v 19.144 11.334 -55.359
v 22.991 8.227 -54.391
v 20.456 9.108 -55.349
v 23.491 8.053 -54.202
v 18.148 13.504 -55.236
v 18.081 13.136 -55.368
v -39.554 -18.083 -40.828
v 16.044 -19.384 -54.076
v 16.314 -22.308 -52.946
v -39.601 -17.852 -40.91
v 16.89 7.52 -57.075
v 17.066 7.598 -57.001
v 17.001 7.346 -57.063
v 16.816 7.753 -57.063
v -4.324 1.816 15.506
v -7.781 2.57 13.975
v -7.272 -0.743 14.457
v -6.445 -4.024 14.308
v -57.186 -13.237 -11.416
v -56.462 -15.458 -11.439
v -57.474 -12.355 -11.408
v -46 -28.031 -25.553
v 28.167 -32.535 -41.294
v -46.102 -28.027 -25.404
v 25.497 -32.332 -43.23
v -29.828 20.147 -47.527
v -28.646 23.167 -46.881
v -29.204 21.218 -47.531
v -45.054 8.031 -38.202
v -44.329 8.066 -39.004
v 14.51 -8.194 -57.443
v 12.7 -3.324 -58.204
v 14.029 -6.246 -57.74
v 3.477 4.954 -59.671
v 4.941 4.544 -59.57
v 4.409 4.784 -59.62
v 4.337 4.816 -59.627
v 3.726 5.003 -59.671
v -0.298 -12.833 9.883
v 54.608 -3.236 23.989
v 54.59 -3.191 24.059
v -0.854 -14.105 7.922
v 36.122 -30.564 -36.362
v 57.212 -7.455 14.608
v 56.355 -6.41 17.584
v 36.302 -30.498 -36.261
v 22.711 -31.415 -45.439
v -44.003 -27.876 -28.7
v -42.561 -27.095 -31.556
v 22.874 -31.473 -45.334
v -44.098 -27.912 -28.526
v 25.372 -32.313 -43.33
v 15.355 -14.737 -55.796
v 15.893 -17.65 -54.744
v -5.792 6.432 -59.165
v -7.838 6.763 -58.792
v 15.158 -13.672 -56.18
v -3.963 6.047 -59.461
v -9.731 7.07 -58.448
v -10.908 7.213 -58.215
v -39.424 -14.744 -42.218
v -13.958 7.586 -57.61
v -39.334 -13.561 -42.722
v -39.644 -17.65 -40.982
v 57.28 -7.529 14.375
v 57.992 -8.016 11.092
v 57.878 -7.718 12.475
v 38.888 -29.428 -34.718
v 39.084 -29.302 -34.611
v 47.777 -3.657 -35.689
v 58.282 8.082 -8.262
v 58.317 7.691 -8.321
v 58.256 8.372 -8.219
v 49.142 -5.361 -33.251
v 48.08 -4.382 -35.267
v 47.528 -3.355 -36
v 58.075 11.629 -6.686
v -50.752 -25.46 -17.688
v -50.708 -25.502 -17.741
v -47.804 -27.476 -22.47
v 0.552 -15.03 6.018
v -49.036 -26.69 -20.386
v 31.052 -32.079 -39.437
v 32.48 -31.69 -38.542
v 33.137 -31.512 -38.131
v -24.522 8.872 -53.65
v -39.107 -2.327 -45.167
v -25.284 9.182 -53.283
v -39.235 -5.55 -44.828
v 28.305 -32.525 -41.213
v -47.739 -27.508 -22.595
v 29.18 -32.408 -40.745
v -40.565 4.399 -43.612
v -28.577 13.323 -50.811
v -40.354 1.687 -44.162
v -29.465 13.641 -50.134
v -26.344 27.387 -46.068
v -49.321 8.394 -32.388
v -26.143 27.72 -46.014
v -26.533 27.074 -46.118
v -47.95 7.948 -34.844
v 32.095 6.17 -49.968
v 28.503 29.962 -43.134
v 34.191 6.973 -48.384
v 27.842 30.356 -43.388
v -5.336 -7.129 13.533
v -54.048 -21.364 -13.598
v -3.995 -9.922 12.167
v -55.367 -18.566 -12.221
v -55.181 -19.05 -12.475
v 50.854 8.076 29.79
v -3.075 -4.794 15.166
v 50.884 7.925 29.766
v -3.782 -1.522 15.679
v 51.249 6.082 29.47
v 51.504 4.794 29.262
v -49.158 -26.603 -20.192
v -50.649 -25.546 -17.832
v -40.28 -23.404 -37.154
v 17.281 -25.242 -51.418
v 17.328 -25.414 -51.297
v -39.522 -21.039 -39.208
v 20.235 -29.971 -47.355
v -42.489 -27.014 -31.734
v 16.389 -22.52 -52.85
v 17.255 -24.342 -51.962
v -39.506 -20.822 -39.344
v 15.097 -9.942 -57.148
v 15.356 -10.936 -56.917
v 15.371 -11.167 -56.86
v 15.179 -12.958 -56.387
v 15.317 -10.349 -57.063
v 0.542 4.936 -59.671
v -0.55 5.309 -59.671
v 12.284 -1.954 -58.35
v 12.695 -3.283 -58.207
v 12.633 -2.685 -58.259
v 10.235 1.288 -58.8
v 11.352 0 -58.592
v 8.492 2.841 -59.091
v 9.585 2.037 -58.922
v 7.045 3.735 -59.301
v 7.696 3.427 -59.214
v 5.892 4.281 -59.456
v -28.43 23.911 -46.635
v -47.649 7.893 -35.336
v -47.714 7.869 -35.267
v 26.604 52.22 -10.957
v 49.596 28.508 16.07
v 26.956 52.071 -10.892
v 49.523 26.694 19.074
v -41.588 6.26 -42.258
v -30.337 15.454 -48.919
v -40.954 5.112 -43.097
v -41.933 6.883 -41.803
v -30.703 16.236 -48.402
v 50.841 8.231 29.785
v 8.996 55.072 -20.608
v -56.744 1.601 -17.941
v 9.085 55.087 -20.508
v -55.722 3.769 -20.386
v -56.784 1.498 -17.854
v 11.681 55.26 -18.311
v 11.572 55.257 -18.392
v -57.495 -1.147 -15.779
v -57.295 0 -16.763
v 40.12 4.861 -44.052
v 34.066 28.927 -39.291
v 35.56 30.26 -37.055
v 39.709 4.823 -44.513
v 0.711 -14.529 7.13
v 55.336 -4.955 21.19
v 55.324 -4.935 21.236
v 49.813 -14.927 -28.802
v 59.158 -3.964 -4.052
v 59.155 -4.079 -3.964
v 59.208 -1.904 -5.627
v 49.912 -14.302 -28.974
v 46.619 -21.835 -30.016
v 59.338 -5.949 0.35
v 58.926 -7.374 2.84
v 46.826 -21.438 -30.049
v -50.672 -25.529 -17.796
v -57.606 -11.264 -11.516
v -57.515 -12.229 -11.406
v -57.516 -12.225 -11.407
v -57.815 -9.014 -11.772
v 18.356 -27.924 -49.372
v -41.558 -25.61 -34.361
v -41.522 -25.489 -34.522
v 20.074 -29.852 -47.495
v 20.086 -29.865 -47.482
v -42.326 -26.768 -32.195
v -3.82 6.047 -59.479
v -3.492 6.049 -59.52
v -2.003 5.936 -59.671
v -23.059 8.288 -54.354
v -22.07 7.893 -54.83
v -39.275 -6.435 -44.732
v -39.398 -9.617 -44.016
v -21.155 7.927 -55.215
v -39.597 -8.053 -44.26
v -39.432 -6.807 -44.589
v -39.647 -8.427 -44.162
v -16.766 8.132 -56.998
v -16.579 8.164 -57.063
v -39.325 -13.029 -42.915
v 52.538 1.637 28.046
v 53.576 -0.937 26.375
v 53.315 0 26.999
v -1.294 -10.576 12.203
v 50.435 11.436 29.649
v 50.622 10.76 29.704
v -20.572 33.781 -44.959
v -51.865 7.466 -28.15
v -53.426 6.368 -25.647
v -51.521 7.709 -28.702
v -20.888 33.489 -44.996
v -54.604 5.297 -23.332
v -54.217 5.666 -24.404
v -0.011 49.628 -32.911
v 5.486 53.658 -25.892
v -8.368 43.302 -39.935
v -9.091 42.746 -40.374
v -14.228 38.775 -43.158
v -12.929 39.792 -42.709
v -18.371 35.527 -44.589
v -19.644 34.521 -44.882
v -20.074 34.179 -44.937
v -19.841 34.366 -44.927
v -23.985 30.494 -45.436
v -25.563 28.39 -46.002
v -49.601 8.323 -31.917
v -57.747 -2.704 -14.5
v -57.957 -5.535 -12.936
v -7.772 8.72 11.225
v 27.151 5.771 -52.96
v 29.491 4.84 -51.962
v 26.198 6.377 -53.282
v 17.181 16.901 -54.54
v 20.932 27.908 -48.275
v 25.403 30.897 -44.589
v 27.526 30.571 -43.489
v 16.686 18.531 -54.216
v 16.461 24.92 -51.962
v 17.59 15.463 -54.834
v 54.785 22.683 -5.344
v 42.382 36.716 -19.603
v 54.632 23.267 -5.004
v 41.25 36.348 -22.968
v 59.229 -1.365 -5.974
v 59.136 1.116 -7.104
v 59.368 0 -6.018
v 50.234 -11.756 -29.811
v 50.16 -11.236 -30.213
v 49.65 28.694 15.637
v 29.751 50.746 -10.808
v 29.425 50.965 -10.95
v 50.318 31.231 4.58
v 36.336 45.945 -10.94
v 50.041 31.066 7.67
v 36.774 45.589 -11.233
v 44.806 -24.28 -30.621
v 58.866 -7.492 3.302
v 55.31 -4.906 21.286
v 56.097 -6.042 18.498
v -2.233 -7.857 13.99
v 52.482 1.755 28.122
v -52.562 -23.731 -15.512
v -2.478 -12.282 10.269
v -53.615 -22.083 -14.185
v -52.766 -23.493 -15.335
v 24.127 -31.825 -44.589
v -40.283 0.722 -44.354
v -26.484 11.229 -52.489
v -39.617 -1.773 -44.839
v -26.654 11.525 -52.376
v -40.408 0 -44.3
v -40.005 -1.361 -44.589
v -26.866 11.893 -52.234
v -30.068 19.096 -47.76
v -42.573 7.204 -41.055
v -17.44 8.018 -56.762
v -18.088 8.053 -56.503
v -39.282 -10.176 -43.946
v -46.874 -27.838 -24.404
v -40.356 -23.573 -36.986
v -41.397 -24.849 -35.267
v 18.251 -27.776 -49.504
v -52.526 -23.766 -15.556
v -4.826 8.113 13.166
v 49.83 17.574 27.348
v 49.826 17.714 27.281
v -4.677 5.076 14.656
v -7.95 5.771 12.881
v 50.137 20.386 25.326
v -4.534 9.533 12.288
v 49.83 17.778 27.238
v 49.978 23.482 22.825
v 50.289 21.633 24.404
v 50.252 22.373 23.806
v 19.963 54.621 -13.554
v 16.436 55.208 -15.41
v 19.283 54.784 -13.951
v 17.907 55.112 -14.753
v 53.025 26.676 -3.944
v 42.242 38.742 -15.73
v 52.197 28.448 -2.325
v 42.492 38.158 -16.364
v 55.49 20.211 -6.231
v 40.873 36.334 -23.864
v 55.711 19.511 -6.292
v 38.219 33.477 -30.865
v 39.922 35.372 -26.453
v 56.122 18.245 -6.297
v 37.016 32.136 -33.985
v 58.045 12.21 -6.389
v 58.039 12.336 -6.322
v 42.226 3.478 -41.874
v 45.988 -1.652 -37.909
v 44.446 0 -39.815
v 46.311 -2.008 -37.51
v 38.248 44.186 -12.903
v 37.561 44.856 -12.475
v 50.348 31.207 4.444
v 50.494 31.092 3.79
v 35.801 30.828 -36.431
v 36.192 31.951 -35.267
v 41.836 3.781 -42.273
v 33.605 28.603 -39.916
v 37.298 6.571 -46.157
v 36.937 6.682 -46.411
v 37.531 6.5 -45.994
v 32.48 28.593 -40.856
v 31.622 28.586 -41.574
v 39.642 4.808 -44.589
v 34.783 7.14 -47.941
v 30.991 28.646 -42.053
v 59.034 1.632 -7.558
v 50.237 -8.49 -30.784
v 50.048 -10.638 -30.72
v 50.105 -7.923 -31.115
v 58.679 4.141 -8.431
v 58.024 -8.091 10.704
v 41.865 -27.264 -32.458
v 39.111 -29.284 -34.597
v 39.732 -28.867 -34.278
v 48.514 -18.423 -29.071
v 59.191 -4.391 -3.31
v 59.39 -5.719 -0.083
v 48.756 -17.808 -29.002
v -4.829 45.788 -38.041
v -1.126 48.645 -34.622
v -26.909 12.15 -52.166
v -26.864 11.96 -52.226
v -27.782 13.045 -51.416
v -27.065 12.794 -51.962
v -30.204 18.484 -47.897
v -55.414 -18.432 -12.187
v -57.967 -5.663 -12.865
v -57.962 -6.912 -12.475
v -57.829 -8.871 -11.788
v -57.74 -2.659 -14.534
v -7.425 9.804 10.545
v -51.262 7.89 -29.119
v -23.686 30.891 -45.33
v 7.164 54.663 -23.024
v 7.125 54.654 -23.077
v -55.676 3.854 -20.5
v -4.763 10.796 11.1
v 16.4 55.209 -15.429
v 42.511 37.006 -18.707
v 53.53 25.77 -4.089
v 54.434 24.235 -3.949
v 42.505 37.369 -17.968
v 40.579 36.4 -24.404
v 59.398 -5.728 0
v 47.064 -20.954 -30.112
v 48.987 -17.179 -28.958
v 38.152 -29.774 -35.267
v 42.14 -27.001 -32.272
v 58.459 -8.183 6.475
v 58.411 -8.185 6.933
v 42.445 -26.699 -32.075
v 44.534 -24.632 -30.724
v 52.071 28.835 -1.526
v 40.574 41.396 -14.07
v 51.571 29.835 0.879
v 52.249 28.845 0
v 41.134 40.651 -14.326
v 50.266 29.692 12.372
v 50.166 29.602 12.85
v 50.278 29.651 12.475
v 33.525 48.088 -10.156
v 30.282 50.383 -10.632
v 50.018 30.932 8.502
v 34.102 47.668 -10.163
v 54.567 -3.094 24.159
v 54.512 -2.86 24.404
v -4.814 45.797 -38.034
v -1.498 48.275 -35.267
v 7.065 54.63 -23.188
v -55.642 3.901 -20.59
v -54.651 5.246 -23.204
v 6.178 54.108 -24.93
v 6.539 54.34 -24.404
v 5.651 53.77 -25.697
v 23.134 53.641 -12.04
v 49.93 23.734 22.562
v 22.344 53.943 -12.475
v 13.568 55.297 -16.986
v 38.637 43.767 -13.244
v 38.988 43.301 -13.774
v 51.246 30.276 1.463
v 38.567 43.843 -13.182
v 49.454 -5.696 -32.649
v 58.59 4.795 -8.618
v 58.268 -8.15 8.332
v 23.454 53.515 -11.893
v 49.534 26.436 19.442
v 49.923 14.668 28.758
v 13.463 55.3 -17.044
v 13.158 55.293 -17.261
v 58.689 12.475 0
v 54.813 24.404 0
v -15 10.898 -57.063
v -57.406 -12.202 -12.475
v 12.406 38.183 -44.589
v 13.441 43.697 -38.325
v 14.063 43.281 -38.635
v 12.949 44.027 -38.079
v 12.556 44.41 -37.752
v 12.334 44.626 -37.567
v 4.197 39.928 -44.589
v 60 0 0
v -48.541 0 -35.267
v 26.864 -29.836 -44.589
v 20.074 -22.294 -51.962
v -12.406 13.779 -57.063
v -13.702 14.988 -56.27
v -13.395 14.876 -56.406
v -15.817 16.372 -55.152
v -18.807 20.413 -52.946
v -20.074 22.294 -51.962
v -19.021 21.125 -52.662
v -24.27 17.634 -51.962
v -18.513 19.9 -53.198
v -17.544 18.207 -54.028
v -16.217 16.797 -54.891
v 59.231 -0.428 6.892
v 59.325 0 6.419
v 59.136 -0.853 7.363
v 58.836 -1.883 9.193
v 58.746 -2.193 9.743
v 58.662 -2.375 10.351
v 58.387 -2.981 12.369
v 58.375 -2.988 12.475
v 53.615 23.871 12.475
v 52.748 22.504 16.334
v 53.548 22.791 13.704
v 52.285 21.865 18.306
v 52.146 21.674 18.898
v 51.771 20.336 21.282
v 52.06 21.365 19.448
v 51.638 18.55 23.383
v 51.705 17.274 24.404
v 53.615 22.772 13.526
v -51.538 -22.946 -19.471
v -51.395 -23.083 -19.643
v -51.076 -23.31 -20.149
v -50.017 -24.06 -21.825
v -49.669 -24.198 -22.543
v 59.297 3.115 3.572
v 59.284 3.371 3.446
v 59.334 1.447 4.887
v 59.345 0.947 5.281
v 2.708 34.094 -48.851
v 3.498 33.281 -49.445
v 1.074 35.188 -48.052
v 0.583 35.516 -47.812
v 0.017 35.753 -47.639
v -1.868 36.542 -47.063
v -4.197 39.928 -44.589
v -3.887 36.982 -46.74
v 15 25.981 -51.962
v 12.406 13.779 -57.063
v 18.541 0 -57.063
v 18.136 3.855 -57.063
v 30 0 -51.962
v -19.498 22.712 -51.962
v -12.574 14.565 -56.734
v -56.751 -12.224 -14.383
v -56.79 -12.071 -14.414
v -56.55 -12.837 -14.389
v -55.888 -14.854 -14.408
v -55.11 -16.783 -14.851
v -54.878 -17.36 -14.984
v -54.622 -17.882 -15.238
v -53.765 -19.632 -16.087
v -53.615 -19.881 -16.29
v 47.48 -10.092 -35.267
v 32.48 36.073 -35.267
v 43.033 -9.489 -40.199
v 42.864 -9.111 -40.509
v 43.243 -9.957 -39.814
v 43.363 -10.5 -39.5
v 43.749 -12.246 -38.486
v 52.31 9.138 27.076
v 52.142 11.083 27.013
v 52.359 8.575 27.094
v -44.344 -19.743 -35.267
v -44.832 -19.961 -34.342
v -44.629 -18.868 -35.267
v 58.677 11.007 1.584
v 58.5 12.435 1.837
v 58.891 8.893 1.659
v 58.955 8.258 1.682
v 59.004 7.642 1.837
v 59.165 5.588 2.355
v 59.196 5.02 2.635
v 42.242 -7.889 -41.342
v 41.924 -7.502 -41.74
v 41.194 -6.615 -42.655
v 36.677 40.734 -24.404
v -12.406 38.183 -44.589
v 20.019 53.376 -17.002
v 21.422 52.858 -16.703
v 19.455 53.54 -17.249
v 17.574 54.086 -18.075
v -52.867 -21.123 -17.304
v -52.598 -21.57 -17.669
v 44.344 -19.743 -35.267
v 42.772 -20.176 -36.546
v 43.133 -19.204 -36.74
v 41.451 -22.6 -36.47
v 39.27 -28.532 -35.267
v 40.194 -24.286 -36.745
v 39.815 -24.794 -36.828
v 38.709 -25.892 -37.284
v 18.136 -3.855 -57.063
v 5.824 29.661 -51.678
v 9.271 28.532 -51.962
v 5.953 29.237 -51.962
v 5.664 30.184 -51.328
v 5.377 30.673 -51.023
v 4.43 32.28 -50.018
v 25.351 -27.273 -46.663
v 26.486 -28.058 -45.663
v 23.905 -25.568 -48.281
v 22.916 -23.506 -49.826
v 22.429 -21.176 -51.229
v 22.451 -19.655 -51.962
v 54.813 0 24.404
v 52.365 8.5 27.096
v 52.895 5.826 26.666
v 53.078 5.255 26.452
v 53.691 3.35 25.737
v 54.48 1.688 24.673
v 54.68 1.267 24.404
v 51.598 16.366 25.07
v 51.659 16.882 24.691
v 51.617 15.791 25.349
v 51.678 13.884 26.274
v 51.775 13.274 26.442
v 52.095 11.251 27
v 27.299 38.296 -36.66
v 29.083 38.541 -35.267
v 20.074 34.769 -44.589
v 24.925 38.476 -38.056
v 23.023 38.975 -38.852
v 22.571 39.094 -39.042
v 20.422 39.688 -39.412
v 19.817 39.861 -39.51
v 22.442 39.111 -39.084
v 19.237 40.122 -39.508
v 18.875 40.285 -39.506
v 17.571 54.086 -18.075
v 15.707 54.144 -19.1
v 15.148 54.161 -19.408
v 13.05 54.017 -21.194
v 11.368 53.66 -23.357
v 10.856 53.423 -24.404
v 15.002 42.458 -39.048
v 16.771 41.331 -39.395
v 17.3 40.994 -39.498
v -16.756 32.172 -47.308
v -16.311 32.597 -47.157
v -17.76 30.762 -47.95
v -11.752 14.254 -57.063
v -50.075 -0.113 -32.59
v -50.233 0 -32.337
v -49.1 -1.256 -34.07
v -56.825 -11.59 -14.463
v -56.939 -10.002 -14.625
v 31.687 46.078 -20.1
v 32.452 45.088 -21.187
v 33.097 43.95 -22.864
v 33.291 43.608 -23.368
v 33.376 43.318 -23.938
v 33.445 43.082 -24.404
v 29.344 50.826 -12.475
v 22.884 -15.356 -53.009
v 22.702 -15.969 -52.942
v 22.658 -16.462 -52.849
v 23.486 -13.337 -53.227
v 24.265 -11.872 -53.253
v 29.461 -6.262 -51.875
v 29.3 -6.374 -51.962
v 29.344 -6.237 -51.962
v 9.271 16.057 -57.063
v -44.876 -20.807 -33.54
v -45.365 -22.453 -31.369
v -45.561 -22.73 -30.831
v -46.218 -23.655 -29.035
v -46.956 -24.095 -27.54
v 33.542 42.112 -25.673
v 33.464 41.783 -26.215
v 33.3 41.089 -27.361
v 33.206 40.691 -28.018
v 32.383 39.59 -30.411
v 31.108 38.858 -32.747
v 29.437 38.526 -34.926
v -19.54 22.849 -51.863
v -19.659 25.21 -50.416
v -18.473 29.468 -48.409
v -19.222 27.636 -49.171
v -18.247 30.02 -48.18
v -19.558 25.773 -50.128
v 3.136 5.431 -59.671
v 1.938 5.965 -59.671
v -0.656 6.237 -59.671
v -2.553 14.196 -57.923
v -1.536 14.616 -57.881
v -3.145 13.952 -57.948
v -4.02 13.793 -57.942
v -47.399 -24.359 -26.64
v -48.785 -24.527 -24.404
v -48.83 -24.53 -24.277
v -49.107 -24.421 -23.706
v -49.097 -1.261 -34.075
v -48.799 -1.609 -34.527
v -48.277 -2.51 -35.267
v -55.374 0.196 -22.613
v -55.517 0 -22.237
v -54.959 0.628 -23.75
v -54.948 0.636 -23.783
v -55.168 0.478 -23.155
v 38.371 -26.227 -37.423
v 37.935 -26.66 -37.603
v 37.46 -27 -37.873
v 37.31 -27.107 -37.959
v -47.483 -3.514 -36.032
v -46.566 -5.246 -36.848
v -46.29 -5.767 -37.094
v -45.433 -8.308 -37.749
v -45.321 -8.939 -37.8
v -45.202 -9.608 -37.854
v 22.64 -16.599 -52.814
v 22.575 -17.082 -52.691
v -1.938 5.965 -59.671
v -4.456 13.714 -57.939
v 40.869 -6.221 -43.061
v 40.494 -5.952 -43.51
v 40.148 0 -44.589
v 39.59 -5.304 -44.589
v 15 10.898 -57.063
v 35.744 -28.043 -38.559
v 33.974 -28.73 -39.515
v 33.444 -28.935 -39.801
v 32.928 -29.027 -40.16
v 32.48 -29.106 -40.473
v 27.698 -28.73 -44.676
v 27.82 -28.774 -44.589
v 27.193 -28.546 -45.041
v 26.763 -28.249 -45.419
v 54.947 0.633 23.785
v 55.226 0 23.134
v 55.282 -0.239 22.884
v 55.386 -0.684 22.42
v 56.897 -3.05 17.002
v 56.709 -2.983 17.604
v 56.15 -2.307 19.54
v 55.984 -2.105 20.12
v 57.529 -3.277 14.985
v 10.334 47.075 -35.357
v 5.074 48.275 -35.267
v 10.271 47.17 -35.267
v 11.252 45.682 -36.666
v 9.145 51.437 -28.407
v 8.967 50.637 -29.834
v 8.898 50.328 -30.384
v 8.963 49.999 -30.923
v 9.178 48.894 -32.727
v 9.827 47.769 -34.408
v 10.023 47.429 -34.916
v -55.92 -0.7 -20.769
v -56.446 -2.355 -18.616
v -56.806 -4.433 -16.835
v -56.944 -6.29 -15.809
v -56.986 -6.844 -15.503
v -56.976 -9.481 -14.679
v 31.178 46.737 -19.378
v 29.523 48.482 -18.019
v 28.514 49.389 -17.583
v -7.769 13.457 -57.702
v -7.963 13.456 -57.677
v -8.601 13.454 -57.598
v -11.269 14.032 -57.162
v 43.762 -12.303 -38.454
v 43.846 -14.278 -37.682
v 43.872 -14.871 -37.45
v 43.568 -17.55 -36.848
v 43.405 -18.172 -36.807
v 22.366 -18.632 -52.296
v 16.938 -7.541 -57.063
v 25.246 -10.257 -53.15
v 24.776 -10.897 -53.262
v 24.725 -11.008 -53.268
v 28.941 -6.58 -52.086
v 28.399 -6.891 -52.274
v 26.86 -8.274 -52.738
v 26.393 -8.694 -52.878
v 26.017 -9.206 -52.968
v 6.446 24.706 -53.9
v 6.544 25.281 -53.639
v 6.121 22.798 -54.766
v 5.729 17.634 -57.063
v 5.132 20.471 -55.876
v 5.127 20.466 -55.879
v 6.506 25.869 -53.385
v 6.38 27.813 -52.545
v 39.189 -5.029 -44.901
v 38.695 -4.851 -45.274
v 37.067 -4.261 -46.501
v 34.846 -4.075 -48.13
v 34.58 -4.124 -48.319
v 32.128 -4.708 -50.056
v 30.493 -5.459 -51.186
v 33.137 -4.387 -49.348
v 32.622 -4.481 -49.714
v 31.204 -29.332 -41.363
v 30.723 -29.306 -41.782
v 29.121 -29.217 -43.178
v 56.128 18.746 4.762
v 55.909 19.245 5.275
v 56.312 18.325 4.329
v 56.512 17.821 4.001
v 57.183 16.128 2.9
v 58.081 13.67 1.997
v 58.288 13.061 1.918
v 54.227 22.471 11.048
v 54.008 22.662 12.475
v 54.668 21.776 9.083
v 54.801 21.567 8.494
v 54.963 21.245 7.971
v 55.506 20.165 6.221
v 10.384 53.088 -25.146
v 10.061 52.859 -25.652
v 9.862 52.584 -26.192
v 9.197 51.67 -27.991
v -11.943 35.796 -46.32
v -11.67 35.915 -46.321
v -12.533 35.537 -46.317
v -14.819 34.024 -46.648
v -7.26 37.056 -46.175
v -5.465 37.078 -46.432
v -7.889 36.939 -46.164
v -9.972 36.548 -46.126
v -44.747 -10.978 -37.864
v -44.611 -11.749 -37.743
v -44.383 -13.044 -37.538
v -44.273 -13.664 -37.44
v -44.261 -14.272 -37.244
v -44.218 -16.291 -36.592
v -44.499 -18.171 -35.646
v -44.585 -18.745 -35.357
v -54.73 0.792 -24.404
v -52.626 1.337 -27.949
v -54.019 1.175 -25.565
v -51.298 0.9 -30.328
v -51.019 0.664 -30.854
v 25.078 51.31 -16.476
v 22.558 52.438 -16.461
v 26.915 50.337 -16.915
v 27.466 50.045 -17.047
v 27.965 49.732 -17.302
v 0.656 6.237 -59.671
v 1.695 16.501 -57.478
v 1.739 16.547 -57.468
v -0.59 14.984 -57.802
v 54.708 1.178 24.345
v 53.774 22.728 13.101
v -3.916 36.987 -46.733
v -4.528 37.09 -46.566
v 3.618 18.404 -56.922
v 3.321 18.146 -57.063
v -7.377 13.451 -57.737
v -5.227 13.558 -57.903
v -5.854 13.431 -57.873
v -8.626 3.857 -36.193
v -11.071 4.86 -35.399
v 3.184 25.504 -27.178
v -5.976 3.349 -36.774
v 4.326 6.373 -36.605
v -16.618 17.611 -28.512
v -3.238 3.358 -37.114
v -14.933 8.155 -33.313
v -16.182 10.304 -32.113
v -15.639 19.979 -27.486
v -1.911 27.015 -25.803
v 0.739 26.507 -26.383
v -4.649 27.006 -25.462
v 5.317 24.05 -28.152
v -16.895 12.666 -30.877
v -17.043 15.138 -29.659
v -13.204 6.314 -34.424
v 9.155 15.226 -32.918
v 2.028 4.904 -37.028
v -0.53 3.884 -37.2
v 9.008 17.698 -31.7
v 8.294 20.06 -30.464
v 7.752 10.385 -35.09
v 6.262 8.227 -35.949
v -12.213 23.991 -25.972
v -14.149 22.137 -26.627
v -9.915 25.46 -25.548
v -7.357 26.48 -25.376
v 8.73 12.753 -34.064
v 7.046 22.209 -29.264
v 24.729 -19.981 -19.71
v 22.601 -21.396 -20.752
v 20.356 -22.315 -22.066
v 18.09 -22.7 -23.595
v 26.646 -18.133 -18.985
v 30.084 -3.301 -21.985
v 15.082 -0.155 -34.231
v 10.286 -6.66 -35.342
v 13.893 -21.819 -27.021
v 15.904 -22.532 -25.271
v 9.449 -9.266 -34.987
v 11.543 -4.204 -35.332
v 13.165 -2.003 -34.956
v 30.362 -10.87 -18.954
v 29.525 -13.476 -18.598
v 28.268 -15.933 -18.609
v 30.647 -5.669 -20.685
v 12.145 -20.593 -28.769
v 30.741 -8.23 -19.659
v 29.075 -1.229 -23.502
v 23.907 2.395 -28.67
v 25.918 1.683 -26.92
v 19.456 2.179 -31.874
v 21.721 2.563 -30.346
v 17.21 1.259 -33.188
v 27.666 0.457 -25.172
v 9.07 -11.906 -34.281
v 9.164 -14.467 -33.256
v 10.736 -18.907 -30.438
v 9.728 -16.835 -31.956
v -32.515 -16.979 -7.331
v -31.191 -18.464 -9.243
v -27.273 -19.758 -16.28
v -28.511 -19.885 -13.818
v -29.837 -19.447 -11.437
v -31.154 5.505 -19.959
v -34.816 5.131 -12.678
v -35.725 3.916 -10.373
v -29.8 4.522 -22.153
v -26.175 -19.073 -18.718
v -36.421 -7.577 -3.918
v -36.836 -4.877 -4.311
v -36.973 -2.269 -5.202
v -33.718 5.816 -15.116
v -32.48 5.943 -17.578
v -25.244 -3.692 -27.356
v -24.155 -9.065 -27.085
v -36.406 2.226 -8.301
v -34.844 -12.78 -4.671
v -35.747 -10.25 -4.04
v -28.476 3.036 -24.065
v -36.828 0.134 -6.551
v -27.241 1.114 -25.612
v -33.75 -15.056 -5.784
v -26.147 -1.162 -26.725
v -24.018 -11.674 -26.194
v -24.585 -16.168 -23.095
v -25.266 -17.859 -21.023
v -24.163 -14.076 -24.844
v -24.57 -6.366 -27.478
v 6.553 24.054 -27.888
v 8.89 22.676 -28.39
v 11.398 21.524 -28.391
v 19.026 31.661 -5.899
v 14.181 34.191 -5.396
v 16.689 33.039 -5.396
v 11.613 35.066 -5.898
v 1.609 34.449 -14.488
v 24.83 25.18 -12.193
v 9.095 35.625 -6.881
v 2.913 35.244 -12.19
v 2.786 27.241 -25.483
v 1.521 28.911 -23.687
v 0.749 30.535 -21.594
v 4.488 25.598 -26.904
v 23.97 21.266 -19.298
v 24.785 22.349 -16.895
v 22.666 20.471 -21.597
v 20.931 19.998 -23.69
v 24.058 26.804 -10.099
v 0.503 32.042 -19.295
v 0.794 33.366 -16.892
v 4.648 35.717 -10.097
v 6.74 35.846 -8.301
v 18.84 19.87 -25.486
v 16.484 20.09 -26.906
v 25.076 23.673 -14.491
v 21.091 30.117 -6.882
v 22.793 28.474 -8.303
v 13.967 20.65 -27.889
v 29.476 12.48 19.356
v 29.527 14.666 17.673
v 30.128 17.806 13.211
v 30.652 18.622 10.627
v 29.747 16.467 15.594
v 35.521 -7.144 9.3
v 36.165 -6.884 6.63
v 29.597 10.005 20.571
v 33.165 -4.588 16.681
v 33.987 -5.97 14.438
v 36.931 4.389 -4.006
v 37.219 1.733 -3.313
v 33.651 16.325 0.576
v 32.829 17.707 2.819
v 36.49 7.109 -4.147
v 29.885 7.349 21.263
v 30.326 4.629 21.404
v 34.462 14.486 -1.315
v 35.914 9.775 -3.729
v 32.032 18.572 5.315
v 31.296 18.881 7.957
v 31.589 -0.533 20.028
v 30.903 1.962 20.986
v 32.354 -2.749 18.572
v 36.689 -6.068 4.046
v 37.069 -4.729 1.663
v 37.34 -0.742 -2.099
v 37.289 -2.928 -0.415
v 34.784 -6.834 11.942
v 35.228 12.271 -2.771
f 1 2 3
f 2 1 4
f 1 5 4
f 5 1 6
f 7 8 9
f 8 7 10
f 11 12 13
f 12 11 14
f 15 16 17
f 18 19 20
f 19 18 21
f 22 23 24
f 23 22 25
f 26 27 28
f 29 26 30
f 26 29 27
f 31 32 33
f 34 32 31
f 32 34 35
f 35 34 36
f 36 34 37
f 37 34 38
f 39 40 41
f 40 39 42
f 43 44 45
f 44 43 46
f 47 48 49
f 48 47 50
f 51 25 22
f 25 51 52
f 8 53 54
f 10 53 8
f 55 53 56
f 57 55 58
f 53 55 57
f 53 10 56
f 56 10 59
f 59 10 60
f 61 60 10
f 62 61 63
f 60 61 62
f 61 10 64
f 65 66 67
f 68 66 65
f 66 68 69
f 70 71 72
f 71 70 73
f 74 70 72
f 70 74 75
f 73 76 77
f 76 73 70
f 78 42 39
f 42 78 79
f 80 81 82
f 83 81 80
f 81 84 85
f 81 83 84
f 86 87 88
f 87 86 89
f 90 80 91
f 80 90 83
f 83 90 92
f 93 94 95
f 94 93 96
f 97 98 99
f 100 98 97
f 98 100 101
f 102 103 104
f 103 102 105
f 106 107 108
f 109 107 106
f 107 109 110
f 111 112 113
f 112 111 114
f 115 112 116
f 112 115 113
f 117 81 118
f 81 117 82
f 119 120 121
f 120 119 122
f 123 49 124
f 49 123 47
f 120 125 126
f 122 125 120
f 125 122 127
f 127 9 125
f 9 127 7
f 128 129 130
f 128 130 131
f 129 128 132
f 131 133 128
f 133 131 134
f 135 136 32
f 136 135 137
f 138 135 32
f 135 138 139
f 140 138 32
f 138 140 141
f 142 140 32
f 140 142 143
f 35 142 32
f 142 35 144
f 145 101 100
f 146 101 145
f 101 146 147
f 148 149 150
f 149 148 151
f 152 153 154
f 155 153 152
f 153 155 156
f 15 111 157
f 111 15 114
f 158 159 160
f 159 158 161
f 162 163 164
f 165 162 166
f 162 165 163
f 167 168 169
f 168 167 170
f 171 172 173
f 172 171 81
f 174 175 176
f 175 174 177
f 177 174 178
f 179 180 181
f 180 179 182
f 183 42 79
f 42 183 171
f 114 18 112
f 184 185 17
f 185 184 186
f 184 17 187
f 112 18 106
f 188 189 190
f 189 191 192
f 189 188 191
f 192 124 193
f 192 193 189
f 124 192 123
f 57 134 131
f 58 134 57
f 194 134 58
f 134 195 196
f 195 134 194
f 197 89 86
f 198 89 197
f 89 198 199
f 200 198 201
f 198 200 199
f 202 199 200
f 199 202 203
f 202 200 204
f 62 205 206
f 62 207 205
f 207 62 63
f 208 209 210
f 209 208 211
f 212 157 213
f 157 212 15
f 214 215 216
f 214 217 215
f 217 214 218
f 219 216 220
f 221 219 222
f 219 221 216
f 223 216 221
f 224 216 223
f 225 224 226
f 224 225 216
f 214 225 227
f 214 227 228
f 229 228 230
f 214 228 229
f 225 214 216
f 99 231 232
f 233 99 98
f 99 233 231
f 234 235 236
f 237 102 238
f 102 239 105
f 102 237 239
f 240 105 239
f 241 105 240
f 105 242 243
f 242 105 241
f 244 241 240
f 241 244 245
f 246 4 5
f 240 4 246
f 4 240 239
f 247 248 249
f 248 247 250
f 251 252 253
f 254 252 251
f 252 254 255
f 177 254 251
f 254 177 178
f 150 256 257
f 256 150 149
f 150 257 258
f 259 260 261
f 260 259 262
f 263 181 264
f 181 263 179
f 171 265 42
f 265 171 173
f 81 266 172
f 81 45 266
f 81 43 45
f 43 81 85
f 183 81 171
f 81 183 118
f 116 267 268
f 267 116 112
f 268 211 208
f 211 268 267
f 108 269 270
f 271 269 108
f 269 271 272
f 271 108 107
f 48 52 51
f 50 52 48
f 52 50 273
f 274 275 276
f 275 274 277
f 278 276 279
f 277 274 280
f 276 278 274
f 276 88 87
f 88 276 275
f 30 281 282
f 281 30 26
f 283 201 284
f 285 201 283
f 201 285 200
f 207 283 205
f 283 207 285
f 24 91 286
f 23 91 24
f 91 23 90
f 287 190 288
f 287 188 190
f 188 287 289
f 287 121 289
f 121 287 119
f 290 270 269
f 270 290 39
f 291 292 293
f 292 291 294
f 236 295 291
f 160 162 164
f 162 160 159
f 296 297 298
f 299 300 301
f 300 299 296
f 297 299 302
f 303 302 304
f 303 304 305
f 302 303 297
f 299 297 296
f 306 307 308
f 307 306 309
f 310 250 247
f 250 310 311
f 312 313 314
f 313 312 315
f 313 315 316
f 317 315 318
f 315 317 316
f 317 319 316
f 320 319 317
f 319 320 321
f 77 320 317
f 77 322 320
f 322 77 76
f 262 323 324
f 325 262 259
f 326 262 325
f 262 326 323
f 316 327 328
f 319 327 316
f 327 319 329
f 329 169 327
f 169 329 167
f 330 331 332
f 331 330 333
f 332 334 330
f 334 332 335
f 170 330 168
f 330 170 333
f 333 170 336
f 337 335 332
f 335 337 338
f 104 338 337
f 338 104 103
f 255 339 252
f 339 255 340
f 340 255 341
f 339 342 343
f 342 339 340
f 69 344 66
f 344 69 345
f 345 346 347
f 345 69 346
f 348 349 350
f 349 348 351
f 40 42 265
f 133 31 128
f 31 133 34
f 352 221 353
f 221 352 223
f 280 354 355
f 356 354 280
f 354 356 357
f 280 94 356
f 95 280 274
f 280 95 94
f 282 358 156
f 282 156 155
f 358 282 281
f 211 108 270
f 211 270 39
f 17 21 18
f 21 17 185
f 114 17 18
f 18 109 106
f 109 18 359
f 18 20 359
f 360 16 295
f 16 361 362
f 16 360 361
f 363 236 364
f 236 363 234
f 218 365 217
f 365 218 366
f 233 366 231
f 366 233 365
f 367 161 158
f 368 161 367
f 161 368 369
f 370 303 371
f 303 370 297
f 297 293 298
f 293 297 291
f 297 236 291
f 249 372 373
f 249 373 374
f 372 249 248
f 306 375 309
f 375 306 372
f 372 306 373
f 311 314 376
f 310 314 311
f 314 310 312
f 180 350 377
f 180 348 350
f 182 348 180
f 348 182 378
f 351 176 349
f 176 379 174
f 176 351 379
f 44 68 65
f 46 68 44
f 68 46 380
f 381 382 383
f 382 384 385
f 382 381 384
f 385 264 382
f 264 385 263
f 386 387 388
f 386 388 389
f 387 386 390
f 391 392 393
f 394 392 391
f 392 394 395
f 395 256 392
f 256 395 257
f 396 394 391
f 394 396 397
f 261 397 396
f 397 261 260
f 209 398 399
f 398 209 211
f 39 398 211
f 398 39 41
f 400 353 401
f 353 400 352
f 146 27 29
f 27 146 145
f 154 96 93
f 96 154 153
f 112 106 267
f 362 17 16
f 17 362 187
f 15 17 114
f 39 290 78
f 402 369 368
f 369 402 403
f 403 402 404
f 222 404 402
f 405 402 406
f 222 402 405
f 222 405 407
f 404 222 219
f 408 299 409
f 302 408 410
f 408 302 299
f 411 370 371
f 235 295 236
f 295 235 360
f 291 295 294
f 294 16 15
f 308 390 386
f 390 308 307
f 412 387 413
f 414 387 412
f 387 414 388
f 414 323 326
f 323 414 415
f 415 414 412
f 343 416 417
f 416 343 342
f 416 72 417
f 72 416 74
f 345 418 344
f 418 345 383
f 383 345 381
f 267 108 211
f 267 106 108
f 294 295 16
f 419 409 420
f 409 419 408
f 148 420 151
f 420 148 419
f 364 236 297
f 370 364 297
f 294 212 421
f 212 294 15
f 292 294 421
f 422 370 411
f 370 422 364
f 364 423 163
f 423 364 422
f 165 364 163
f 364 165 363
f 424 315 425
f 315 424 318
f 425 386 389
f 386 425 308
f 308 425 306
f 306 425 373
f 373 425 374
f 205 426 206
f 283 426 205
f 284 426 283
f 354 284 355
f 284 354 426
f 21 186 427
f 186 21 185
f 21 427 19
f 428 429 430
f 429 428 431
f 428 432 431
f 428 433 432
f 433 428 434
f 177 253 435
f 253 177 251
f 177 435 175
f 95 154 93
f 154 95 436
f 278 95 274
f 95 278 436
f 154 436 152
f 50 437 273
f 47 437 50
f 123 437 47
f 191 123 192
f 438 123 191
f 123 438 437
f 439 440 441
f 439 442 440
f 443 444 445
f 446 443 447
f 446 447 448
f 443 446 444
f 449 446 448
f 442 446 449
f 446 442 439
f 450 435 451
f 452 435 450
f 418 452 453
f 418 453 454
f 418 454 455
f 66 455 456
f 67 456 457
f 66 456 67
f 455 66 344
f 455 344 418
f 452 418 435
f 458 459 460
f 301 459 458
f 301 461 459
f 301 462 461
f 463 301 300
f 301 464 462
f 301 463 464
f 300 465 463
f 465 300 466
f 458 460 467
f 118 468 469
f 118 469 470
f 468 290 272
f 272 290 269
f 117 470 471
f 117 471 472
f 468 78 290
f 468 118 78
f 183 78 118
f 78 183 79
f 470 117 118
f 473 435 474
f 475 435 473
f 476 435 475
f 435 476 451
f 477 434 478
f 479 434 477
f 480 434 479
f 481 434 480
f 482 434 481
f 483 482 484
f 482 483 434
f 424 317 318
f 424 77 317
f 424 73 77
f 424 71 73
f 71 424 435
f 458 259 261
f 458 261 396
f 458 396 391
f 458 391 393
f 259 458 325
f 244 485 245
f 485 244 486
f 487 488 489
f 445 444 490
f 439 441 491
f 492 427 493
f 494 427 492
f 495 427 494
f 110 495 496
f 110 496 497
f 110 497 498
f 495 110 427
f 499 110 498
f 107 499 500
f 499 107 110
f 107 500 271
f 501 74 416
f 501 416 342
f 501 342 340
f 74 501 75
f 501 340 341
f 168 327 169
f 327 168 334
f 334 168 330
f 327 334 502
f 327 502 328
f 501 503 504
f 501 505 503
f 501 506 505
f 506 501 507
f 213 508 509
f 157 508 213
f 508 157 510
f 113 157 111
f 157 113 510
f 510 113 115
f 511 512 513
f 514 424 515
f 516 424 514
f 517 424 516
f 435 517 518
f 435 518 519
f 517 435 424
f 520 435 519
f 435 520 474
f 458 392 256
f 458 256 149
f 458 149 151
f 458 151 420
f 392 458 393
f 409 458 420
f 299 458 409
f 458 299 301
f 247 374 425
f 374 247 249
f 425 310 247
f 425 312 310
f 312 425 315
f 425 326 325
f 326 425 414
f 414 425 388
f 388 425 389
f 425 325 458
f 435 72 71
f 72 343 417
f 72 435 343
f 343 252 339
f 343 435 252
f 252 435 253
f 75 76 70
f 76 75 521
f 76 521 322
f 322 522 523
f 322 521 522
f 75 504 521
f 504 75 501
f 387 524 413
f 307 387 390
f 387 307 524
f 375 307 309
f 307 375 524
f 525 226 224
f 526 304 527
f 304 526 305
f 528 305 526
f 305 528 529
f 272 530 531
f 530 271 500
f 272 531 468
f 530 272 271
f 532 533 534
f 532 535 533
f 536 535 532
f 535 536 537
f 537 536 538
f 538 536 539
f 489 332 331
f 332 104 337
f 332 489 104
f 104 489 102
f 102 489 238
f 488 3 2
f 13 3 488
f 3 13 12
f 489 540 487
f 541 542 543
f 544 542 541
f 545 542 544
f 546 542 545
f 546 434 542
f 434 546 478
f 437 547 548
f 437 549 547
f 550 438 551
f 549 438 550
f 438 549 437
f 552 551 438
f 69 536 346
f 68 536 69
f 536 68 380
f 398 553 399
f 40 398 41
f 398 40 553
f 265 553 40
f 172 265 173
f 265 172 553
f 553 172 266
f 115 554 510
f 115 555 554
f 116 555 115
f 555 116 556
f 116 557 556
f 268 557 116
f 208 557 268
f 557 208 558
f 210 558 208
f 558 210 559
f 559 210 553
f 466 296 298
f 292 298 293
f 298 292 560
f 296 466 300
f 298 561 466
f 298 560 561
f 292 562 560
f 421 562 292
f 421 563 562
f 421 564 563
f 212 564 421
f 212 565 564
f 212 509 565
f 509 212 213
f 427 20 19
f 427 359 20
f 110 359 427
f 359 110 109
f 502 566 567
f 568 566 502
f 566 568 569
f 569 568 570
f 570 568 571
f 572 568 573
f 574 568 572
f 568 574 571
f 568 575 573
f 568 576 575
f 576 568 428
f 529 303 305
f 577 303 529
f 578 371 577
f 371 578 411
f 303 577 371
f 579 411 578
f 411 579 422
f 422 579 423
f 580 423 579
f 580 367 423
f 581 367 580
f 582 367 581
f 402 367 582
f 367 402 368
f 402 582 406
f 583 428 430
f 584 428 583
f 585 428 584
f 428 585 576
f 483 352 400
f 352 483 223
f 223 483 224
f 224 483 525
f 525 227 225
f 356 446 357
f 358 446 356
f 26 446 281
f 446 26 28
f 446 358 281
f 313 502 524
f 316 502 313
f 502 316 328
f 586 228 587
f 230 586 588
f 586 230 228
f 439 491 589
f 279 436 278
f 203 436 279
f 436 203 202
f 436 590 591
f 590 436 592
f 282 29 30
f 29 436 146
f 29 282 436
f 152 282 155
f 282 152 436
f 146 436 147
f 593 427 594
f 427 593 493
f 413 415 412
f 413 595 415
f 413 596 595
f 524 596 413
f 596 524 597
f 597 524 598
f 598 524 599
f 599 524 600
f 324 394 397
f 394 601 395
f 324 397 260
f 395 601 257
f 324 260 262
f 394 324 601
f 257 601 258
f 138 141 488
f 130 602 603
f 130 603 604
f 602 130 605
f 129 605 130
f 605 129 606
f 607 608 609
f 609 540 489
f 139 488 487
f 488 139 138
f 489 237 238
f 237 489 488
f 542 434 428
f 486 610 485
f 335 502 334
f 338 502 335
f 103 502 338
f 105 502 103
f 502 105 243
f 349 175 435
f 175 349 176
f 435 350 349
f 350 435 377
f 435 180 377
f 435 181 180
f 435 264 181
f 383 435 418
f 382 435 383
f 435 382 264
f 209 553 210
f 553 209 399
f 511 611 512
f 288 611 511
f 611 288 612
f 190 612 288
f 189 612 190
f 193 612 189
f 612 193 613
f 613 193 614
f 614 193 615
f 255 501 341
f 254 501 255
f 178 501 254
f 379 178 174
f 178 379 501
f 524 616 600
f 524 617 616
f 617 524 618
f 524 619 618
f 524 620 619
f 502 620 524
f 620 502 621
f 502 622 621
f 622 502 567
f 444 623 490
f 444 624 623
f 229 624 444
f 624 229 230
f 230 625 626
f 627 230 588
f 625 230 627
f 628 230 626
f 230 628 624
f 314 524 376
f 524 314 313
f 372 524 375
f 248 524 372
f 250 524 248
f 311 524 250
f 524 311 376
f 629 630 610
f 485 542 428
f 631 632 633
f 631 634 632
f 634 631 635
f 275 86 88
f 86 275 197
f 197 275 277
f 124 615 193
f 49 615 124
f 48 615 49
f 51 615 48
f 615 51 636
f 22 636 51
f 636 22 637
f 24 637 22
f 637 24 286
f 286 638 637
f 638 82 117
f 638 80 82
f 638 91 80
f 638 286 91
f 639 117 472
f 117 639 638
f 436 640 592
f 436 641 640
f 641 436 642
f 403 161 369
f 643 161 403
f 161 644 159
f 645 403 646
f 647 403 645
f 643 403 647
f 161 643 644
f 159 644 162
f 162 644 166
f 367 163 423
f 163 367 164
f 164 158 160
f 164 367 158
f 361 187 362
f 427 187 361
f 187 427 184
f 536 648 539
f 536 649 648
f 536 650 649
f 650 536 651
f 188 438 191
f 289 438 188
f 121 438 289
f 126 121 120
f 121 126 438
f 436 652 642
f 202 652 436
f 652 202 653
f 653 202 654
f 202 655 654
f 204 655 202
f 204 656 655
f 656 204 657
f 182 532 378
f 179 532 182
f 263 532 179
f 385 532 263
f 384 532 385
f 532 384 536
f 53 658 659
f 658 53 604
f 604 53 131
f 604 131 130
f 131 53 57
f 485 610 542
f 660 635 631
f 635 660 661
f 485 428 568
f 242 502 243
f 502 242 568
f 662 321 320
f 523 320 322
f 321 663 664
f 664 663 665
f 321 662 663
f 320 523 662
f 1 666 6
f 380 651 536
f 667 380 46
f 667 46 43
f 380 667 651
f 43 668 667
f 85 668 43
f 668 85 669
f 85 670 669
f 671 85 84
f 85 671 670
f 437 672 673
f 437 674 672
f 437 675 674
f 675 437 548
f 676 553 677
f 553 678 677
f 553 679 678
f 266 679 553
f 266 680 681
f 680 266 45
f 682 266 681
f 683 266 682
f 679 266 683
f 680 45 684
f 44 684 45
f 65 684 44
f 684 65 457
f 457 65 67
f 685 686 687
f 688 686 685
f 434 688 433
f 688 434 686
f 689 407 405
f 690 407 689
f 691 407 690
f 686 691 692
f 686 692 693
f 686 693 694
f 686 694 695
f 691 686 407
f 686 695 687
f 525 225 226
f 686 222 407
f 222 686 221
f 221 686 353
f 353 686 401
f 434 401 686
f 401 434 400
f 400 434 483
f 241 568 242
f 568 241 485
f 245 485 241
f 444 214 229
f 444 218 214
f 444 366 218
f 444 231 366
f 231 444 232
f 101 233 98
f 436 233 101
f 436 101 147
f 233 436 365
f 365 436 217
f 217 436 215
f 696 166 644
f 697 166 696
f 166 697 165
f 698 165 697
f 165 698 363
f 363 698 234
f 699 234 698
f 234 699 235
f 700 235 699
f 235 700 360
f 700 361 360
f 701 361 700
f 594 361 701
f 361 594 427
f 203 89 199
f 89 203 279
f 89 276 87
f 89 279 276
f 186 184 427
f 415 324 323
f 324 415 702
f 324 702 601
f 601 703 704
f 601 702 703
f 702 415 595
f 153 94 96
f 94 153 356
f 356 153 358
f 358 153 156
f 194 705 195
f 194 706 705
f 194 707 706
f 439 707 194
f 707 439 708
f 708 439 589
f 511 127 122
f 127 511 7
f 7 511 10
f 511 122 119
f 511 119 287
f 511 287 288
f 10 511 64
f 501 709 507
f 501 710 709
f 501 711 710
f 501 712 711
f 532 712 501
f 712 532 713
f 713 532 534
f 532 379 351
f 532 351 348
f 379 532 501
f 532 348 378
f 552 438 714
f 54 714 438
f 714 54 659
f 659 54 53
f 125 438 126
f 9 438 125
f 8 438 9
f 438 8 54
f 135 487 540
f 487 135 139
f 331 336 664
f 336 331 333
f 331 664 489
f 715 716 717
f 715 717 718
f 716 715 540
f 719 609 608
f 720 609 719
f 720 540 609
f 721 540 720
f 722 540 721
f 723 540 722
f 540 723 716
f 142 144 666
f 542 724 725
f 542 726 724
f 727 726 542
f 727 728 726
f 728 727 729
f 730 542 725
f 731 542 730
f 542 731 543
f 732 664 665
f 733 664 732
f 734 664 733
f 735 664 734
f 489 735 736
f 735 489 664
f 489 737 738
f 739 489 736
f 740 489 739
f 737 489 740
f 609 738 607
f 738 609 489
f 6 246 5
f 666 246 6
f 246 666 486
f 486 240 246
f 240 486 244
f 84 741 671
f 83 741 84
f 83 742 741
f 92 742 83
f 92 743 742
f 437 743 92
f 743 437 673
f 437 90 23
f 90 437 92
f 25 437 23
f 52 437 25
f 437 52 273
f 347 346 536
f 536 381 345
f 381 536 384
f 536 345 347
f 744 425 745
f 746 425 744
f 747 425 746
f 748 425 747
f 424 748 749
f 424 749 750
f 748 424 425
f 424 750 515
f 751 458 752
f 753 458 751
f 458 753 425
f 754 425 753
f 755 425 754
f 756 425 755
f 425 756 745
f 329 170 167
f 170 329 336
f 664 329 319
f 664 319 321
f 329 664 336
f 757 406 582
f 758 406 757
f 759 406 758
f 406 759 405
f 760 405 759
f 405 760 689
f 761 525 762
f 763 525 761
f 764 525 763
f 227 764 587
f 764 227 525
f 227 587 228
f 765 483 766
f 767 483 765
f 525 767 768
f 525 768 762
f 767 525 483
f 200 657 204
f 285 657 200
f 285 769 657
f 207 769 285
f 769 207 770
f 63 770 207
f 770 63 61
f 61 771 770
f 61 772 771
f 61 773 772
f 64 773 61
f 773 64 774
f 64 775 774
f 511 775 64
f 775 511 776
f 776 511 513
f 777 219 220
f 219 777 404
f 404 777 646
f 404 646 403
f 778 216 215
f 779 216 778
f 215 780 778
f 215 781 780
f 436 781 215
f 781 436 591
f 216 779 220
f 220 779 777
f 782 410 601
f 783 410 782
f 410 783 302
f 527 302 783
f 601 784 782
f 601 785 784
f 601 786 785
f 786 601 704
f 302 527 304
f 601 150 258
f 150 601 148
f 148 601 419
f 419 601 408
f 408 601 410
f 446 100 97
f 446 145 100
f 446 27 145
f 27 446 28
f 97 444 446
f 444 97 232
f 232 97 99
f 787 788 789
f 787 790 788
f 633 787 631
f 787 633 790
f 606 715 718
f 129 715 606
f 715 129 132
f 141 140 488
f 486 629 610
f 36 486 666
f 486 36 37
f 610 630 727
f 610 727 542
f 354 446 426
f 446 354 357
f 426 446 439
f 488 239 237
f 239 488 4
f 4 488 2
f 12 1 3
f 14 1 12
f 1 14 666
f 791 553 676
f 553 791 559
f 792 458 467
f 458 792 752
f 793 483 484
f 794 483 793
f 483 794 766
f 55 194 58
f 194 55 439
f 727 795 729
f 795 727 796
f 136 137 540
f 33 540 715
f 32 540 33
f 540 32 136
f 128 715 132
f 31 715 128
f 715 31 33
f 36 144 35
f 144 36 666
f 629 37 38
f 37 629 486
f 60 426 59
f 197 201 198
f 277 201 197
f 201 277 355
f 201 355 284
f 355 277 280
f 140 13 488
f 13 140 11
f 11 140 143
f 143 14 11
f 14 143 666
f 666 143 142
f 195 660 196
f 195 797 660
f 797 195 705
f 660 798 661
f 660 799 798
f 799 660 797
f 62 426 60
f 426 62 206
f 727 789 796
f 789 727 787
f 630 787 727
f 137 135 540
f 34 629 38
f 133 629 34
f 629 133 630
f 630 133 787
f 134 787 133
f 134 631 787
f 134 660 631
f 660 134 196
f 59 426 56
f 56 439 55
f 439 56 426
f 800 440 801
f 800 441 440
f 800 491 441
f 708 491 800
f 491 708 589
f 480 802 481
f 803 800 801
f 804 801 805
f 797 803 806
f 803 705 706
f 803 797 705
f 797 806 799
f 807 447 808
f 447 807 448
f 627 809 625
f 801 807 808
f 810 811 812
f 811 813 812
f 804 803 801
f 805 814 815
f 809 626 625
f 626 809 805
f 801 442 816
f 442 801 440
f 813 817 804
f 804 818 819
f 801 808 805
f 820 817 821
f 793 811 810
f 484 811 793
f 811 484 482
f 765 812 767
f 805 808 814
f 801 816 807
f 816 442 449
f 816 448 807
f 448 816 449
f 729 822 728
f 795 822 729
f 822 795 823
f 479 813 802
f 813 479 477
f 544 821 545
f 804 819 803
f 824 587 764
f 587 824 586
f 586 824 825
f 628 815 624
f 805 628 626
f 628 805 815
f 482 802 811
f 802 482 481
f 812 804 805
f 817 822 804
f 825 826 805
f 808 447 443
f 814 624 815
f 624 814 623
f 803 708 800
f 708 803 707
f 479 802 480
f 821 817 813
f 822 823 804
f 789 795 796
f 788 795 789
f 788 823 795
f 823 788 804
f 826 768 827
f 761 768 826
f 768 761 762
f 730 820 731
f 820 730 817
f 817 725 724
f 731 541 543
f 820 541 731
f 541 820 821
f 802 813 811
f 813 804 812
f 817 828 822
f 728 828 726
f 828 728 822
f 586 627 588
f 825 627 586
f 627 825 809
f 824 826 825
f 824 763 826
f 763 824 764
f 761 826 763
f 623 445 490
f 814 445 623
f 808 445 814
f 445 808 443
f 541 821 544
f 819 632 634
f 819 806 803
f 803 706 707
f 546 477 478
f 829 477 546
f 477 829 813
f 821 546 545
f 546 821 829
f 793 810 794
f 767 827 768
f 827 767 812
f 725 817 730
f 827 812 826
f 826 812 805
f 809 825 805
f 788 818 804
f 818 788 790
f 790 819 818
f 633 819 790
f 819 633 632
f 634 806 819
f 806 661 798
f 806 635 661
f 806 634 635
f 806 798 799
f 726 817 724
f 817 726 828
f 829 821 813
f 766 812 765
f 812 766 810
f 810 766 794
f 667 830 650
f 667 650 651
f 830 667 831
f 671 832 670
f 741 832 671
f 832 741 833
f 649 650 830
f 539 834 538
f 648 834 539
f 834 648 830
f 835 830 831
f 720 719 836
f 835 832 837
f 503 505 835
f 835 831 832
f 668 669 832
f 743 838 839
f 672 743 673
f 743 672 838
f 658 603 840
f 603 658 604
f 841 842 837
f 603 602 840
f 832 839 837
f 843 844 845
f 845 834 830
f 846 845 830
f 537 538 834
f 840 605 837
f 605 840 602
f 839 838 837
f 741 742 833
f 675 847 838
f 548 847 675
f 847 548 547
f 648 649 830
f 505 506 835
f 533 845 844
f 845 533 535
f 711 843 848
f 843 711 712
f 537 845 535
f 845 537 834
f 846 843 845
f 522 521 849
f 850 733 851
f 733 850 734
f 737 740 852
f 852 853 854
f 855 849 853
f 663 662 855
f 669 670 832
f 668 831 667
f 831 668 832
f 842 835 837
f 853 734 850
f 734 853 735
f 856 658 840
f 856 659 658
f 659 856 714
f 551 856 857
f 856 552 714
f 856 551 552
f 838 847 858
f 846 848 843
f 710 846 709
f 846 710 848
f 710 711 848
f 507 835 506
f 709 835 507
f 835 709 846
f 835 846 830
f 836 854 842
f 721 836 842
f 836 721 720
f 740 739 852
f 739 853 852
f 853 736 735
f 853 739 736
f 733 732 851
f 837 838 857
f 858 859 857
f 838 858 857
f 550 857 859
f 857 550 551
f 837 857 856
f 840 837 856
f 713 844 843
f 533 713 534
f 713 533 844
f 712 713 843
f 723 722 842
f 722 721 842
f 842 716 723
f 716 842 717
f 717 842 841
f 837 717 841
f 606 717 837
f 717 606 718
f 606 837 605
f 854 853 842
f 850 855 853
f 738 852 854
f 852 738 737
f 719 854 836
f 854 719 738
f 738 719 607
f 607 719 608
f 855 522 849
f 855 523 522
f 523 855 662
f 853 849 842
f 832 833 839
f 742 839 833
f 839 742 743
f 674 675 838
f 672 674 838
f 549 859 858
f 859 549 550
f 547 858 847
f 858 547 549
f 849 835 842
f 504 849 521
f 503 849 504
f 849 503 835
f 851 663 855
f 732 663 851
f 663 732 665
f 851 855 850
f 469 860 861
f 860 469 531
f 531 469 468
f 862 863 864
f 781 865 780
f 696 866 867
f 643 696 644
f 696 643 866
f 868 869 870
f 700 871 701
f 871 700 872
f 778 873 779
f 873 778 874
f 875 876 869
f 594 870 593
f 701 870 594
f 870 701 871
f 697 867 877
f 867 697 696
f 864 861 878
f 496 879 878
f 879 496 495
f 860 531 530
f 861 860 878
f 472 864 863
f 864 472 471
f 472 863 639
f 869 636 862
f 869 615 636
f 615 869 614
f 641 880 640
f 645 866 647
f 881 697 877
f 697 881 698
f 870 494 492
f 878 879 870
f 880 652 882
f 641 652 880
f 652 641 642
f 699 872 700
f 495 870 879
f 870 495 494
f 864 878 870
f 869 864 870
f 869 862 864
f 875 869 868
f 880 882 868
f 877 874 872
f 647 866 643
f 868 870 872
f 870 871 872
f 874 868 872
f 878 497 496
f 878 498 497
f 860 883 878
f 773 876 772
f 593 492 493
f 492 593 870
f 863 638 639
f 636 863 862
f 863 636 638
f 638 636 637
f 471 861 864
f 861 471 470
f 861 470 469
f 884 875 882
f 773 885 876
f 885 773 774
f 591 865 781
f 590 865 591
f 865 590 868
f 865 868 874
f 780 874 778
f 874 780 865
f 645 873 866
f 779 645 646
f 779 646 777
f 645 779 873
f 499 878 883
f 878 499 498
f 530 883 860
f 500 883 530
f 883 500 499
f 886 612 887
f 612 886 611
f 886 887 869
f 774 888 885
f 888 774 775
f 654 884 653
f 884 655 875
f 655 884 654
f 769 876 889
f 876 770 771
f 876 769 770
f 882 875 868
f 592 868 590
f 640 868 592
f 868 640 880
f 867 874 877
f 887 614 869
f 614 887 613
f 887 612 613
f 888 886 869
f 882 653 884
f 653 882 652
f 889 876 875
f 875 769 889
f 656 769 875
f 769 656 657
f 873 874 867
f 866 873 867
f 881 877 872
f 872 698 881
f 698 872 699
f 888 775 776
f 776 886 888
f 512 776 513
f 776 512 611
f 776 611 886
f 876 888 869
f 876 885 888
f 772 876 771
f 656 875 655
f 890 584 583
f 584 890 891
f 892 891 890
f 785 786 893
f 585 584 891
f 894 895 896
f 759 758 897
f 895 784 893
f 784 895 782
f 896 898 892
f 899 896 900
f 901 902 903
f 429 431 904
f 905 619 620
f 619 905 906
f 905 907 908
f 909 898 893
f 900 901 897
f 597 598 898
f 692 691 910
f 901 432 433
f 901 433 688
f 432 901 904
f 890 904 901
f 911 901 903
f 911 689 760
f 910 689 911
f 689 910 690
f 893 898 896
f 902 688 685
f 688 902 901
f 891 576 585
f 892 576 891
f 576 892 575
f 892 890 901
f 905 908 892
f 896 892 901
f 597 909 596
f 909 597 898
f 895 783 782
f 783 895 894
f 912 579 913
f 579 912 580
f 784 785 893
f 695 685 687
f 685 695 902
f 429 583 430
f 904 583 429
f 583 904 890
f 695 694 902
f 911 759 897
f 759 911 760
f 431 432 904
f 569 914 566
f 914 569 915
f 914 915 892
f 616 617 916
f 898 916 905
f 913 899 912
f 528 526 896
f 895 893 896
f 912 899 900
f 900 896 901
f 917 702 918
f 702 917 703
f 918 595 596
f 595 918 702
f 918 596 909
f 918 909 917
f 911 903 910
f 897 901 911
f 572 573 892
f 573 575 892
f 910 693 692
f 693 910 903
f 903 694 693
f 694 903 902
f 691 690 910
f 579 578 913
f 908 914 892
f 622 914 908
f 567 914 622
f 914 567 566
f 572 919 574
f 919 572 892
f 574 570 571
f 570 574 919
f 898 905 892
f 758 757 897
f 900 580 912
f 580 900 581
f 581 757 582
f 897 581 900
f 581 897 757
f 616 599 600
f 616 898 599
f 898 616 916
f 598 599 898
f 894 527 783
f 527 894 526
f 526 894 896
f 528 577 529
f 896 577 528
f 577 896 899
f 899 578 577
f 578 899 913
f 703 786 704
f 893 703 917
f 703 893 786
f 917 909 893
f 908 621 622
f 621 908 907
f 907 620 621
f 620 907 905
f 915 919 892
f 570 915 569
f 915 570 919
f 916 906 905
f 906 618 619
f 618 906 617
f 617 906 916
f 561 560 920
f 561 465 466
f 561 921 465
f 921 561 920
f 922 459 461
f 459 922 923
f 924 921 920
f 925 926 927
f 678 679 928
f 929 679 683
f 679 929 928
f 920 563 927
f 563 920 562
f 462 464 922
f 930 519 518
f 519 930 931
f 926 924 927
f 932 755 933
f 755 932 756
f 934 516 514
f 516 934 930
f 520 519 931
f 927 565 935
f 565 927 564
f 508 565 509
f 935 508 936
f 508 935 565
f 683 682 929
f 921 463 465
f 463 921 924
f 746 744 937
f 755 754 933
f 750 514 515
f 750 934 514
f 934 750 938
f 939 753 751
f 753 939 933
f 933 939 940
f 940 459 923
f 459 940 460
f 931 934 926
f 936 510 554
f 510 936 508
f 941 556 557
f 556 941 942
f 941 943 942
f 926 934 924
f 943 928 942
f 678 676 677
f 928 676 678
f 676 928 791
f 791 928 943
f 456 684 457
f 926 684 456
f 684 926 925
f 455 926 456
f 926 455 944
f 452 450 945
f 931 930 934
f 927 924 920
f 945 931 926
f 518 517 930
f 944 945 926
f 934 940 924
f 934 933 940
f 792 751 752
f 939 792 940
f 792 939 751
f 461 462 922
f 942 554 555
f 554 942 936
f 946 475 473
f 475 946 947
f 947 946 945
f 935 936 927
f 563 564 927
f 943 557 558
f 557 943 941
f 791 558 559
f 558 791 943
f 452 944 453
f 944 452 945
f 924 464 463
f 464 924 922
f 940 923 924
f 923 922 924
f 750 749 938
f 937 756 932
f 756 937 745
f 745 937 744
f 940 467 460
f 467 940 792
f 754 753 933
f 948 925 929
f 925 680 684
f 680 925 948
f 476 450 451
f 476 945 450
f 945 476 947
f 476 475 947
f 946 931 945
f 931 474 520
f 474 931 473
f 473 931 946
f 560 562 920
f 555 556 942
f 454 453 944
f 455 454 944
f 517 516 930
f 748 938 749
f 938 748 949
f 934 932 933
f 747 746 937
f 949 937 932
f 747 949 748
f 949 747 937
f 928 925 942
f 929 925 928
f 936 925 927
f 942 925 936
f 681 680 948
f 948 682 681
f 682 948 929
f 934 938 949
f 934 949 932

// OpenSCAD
difference() {
	intersection() {
		hull() {
			rotate(a = -104.3259395762, v = [-0.6873258266, 0.6829039444, 0.0000000000]) {
				rotate(a = -90.0000000000, v = [-0.3826834324, 0.9238795325, 0.0000000000]) {
					cylinder(h = 60, r = 16.2000000000);
				}
			}
			rotate(a = -104.3259395762, v = [-0.6873258266, 0.6829039444, 0.0000000000]) {
				rotate(a = -90.0000000000, v = [-0.9914448614, 0.1305261922, 0.0000000000]) {
					cylinder(h = 60, r = 16.2000000000);
				}
			}
			rotate(a = -104.3259395762, v = [-0.6873258266, 0.6829039444, 0.0000000000]) {
				rotate(a = -32.5529951665, v = [0.1610165687, 0.5134229984, -0.0000000000]) {
					cylinder(h = 60, r = 16.2000000000);
				}
			}
			rotate(a = -104.3259395762, v = [-0.6873258266, 0.6829039444, 0.0000000000]) {
				rotate(a = -132.6236762269, v = [-0.2633703925, 0.6870685300, 0.0000000000]) {
					cylinder(h = 60, r = 16.2000000000);
				}
			}
			rotate(a = -104.3259395762, v = [-0.6873258266, 0.6829039444, 0.0000000000]) {
				rotate(a = -145.9038576290, v = [-0.3634706589, -0.4267817365, 0.0000000000]) {
					cylinder(h = 60, r = 16.2000000000);
				}
			}
		}
		sphere(r = 60);
	}
	union() {
		rotate(a = -104.3259395762, v = [-0.6873258266, 0.6829039444, 0.0000000000]) {
			rotate(a = -90.0000000000, v = [-0.3826834324, 0.9238795325, 0.0000000000]) {
				translate(v = [0, 0, 35]) {
					cylinder(h = 100, r = 13.2000000000);
				}
			}
		}
		rotate(a = -104.3259395762, v = [-0.6873258266, 0.6829039444, 0.0000000000]) {
			rotate(a = -90.0000000000, v = [-0.9914448614, 0.1305261922, 0.0000000000]) {
				translate(v = [0, 0, 35]) {
					cylinder(h = 100, r = 13.2000000000);
				}
			}
		}
		rotate(a = -104.3259395762, v = [-0.6873258266, 0.6829039444, 0.0000000000]) {
			rotate(a = -32.5529951665, v = [0.1610165687, 0.5134229984, -0.0000000000]) {
				translate(v = [0, 0, 35]) {
					cylinder(h = 100, r = 13.2000000000);
				}
			}
		}
		rotate(a = -104.3259395762, v = [-0.6873258266, 0.6829039444, 0.0000000000]) {
			rotate(a = -132.6236762269, v = [-0.2633703925, 0.6870685300, 0.0000000000]) {
				translate(v = [0, 0, 35]) {
					cylinder(h = 100, r = 13.2000000000);
				}
			}
		}
		rotate(a = -104.3259395762, v = [-0.6873258266, 0.6829039444, 0.0000000000]) {
			rotate(a = -145.9038576290, v = [-0.3634706589, -0.4267817365, 0.0000000000]) {
				translate(v = [0, 0, 35]) {
					cylinder(h = 100, r = 13.2000000000);
				}
			}
		}
	}
}
